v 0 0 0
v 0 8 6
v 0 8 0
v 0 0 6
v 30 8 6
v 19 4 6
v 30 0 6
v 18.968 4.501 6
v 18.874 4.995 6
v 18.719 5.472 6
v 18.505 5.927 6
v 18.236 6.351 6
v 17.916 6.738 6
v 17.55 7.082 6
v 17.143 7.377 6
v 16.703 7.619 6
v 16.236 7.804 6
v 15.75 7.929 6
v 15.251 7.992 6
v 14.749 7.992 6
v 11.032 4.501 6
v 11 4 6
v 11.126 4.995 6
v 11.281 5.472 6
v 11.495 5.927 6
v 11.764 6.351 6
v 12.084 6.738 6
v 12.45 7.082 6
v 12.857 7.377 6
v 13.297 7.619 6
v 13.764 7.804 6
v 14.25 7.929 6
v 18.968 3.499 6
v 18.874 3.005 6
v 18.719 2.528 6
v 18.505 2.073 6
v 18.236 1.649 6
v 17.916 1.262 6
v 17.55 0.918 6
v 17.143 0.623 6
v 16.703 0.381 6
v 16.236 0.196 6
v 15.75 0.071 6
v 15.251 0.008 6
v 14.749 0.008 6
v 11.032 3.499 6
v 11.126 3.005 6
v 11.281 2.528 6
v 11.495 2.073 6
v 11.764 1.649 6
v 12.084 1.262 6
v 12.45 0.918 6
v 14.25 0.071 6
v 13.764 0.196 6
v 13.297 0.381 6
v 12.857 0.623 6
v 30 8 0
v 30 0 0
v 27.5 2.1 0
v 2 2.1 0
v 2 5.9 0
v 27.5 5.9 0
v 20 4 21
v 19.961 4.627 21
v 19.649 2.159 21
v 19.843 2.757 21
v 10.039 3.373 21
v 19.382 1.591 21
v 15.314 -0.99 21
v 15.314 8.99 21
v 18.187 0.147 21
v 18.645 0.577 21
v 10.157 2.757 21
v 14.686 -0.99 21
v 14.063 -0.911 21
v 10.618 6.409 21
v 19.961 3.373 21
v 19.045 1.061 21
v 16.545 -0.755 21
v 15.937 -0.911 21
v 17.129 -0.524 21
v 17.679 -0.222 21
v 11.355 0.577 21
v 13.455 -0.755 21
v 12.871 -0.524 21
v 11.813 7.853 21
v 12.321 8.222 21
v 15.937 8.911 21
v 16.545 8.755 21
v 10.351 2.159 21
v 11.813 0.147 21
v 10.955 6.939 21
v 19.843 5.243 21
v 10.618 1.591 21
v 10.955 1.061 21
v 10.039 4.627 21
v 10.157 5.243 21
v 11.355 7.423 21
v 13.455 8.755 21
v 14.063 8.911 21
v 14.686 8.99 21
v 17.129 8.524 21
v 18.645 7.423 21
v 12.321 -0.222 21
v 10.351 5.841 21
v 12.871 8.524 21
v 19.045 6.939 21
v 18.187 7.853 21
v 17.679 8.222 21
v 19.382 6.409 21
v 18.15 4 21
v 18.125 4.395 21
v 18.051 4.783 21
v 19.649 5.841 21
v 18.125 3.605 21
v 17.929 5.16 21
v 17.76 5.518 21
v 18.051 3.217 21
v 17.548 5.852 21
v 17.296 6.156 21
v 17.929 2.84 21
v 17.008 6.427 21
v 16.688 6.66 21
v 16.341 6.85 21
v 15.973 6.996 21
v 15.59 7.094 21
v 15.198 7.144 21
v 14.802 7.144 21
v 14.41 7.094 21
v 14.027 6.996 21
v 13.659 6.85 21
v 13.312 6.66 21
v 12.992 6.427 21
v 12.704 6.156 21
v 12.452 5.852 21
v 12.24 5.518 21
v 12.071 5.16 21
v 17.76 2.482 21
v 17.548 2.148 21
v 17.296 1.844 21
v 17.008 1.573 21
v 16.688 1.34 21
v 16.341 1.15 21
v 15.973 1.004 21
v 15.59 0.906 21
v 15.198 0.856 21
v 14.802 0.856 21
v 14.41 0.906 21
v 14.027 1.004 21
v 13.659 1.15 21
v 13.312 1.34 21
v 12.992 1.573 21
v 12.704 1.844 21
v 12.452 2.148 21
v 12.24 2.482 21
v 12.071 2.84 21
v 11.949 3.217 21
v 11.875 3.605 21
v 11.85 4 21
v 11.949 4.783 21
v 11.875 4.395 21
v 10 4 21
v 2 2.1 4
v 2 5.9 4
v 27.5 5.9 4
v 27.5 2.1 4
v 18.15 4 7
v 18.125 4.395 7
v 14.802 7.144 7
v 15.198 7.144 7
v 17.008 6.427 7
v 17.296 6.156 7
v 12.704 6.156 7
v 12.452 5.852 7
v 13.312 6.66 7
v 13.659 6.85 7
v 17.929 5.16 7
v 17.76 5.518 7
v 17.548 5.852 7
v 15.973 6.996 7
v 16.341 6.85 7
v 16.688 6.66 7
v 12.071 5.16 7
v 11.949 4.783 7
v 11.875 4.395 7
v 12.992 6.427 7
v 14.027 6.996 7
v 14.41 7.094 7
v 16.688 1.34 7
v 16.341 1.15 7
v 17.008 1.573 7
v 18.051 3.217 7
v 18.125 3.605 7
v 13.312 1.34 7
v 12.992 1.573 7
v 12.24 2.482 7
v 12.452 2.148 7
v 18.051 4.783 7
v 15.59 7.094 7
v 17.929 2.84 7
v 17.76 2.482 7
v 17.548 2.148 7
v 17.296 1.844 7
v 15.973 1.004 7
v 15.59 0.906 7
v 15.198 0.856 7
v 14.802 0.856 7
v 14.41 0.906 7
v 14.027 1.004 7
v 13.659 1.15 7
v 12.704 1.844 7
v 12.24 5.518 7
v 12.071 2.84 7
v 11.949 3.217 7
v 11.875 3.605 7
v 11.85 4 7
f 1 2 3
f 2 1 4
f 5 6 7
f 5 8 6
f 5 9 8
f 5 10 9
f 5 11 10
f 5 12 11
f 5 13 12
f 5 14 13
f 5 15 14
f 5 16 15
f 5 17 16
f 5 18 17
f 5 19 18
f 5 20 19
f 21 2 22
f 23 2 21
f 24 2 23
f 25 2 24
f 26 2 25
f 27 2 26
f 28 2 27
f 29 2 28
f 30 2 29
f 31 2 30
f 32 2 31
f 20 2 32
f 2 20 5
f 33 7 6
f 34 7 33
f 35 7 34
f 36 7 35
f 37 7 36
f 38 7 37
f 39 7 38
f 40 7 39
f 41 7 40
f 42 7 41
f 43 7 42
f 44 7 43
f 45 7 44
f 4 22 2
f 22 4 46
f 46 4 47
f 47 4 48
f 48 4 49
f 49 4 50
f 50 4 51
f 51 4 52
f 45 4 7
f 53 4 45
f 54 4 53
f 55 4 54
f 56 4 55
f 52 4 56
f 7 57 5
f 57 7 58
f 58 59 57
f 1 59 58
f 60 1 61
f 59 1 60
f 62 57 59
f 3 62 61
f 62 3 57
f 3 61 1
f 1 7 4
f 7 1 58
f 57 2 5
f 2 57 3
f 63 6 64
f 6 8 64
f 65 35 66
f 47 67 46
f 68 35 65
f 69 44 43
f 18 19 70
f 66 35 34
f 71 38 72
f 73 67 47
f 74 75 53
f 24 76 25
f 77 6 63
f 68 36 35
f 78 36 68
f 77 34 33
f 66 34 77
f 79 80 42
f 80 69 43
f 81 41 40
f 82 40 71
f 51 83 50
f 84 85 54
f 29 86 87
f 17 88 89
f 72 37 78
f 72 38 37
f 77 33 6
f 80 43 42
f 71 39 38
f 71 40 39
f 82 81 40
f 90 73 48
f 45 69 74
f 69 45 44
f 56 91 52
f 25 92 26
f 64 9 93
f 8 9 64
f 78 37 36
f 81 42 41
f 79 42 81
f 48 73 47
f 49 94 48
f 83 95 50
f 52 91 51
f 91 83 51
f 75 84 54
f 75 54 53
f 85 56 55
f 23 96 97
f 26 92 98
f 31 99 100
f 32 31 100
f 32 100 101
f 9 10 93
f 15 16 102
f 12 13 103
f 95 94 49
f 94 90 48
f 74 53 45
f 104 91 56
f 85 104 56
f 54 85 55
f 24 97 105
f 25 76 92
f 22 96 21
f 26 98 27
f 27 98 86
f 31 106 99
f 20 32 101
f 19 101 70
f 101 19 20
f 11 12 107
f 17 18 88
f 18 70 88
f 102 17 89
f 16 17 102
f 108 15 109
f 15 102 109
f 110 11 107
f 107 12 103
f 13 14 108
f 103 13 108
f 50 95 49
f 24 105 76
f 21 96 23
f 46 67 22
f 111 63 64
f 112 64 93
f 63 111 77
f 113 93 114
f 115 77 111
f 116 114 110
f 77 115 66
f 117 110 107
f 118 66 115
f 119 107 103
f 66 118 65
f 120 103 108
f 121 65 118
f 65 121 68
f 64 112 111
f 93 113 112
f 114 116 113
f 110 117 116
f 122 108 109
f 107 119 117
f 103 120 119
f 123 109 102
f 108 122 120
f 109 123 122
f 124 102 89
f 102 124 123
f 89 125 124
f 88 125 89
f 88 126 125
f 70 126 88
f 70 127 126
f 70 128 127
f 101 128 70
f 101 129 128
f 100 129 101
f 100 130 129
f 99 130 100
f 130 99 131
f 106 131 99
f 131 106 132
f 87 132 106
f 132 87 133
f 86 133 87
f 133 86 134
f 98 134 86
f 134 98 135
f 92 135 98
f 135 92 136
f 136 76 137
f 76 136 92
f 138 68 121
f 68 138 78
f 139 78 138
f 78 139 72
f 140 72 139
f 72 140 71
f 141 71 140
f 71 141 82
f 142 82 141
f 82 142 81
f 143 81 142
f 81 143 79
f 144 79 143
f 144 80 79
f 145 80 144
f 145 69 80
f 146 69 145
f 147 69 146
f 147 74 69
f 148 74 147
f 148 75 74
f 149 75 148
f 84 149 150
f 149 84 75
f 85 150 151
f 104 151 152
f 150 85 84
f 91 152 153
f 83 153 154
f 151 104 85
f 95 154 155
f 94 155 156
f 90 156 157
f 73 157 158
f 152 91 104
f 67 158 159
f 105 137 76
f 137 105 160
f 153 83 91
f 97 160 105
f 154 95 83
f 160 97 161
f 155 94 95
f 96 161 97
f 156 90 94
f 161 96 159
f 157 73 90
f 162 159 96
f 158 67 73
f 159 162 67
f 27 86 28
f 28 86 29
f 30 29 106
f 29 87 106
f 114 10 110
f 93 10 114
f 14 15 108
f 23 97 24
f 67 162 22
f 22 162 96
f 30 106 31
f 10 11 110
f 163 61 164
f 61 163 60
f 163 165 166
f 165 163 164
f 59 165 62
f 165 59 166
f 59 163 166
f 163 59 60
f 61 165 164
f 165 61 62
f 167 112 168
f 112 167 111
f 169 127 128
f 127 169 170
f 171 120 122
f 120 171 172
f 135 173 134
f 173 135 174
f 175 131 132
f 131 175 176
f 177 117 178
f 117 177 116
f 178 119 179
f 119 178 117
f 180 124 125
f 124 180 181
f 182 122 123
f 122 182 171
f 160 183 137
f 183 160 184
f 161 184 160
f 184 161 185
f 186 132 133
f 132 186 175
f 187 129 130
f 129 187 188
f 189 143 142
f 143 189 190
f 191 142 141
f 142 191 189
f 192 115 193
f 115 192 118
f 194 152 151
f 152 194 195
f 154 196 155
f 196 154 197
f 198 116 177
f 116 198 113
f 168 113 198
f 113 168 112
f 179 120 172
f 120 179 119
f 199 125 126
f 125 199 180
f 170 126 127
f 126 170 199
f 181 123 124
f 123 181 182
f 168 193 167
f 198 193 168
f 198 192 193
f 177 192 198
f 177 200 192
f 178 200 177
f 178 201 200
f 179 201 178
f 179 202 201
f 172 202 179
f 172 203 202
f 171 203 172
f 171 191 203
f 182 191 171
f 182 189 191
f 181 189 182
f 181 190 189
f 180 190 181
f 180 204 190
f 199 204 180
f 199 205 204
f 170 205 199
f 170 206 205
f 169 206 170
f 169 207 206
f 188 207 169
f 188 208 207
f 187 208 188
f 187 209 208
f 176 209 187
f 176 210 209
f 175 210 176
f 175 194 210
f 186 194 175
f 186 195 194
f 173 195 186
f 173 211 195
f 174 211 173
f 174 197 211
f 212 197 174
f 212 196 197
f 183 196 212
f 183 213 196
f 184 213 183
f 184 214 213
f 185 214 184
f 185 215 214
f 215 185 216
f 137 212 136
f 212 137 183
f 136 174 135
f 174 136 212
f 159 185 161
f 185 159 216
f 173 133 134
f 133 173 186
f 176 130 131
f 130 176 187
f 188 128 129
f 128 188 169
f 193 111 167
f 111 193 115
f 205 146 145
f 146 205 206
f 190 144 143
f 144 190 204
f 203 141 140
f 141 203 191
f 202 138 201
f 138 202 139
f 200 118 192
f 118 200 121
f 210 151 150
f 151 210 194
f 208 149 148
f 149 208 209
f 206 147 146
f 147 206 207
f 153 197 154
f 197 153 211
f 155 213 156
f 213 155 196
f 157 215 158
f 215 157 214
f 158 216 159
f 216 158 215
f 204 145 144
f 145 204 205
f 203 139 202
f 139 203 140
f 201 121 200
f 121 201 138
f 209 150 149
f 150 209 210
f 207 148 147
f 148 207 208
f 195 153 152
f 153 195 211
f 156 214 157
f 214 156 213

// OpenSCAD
$fn=50;
difference(){
    union() {
        cube([30,8,6]);
        translate([15,4,6]) cylinder(15,8/2,10/2);
    }
    translate([2,2.1,0])cube([25.5,3.8,4]);
    translate([15,4,7])cylinder(14,6.3/2,6.3/2);
}
